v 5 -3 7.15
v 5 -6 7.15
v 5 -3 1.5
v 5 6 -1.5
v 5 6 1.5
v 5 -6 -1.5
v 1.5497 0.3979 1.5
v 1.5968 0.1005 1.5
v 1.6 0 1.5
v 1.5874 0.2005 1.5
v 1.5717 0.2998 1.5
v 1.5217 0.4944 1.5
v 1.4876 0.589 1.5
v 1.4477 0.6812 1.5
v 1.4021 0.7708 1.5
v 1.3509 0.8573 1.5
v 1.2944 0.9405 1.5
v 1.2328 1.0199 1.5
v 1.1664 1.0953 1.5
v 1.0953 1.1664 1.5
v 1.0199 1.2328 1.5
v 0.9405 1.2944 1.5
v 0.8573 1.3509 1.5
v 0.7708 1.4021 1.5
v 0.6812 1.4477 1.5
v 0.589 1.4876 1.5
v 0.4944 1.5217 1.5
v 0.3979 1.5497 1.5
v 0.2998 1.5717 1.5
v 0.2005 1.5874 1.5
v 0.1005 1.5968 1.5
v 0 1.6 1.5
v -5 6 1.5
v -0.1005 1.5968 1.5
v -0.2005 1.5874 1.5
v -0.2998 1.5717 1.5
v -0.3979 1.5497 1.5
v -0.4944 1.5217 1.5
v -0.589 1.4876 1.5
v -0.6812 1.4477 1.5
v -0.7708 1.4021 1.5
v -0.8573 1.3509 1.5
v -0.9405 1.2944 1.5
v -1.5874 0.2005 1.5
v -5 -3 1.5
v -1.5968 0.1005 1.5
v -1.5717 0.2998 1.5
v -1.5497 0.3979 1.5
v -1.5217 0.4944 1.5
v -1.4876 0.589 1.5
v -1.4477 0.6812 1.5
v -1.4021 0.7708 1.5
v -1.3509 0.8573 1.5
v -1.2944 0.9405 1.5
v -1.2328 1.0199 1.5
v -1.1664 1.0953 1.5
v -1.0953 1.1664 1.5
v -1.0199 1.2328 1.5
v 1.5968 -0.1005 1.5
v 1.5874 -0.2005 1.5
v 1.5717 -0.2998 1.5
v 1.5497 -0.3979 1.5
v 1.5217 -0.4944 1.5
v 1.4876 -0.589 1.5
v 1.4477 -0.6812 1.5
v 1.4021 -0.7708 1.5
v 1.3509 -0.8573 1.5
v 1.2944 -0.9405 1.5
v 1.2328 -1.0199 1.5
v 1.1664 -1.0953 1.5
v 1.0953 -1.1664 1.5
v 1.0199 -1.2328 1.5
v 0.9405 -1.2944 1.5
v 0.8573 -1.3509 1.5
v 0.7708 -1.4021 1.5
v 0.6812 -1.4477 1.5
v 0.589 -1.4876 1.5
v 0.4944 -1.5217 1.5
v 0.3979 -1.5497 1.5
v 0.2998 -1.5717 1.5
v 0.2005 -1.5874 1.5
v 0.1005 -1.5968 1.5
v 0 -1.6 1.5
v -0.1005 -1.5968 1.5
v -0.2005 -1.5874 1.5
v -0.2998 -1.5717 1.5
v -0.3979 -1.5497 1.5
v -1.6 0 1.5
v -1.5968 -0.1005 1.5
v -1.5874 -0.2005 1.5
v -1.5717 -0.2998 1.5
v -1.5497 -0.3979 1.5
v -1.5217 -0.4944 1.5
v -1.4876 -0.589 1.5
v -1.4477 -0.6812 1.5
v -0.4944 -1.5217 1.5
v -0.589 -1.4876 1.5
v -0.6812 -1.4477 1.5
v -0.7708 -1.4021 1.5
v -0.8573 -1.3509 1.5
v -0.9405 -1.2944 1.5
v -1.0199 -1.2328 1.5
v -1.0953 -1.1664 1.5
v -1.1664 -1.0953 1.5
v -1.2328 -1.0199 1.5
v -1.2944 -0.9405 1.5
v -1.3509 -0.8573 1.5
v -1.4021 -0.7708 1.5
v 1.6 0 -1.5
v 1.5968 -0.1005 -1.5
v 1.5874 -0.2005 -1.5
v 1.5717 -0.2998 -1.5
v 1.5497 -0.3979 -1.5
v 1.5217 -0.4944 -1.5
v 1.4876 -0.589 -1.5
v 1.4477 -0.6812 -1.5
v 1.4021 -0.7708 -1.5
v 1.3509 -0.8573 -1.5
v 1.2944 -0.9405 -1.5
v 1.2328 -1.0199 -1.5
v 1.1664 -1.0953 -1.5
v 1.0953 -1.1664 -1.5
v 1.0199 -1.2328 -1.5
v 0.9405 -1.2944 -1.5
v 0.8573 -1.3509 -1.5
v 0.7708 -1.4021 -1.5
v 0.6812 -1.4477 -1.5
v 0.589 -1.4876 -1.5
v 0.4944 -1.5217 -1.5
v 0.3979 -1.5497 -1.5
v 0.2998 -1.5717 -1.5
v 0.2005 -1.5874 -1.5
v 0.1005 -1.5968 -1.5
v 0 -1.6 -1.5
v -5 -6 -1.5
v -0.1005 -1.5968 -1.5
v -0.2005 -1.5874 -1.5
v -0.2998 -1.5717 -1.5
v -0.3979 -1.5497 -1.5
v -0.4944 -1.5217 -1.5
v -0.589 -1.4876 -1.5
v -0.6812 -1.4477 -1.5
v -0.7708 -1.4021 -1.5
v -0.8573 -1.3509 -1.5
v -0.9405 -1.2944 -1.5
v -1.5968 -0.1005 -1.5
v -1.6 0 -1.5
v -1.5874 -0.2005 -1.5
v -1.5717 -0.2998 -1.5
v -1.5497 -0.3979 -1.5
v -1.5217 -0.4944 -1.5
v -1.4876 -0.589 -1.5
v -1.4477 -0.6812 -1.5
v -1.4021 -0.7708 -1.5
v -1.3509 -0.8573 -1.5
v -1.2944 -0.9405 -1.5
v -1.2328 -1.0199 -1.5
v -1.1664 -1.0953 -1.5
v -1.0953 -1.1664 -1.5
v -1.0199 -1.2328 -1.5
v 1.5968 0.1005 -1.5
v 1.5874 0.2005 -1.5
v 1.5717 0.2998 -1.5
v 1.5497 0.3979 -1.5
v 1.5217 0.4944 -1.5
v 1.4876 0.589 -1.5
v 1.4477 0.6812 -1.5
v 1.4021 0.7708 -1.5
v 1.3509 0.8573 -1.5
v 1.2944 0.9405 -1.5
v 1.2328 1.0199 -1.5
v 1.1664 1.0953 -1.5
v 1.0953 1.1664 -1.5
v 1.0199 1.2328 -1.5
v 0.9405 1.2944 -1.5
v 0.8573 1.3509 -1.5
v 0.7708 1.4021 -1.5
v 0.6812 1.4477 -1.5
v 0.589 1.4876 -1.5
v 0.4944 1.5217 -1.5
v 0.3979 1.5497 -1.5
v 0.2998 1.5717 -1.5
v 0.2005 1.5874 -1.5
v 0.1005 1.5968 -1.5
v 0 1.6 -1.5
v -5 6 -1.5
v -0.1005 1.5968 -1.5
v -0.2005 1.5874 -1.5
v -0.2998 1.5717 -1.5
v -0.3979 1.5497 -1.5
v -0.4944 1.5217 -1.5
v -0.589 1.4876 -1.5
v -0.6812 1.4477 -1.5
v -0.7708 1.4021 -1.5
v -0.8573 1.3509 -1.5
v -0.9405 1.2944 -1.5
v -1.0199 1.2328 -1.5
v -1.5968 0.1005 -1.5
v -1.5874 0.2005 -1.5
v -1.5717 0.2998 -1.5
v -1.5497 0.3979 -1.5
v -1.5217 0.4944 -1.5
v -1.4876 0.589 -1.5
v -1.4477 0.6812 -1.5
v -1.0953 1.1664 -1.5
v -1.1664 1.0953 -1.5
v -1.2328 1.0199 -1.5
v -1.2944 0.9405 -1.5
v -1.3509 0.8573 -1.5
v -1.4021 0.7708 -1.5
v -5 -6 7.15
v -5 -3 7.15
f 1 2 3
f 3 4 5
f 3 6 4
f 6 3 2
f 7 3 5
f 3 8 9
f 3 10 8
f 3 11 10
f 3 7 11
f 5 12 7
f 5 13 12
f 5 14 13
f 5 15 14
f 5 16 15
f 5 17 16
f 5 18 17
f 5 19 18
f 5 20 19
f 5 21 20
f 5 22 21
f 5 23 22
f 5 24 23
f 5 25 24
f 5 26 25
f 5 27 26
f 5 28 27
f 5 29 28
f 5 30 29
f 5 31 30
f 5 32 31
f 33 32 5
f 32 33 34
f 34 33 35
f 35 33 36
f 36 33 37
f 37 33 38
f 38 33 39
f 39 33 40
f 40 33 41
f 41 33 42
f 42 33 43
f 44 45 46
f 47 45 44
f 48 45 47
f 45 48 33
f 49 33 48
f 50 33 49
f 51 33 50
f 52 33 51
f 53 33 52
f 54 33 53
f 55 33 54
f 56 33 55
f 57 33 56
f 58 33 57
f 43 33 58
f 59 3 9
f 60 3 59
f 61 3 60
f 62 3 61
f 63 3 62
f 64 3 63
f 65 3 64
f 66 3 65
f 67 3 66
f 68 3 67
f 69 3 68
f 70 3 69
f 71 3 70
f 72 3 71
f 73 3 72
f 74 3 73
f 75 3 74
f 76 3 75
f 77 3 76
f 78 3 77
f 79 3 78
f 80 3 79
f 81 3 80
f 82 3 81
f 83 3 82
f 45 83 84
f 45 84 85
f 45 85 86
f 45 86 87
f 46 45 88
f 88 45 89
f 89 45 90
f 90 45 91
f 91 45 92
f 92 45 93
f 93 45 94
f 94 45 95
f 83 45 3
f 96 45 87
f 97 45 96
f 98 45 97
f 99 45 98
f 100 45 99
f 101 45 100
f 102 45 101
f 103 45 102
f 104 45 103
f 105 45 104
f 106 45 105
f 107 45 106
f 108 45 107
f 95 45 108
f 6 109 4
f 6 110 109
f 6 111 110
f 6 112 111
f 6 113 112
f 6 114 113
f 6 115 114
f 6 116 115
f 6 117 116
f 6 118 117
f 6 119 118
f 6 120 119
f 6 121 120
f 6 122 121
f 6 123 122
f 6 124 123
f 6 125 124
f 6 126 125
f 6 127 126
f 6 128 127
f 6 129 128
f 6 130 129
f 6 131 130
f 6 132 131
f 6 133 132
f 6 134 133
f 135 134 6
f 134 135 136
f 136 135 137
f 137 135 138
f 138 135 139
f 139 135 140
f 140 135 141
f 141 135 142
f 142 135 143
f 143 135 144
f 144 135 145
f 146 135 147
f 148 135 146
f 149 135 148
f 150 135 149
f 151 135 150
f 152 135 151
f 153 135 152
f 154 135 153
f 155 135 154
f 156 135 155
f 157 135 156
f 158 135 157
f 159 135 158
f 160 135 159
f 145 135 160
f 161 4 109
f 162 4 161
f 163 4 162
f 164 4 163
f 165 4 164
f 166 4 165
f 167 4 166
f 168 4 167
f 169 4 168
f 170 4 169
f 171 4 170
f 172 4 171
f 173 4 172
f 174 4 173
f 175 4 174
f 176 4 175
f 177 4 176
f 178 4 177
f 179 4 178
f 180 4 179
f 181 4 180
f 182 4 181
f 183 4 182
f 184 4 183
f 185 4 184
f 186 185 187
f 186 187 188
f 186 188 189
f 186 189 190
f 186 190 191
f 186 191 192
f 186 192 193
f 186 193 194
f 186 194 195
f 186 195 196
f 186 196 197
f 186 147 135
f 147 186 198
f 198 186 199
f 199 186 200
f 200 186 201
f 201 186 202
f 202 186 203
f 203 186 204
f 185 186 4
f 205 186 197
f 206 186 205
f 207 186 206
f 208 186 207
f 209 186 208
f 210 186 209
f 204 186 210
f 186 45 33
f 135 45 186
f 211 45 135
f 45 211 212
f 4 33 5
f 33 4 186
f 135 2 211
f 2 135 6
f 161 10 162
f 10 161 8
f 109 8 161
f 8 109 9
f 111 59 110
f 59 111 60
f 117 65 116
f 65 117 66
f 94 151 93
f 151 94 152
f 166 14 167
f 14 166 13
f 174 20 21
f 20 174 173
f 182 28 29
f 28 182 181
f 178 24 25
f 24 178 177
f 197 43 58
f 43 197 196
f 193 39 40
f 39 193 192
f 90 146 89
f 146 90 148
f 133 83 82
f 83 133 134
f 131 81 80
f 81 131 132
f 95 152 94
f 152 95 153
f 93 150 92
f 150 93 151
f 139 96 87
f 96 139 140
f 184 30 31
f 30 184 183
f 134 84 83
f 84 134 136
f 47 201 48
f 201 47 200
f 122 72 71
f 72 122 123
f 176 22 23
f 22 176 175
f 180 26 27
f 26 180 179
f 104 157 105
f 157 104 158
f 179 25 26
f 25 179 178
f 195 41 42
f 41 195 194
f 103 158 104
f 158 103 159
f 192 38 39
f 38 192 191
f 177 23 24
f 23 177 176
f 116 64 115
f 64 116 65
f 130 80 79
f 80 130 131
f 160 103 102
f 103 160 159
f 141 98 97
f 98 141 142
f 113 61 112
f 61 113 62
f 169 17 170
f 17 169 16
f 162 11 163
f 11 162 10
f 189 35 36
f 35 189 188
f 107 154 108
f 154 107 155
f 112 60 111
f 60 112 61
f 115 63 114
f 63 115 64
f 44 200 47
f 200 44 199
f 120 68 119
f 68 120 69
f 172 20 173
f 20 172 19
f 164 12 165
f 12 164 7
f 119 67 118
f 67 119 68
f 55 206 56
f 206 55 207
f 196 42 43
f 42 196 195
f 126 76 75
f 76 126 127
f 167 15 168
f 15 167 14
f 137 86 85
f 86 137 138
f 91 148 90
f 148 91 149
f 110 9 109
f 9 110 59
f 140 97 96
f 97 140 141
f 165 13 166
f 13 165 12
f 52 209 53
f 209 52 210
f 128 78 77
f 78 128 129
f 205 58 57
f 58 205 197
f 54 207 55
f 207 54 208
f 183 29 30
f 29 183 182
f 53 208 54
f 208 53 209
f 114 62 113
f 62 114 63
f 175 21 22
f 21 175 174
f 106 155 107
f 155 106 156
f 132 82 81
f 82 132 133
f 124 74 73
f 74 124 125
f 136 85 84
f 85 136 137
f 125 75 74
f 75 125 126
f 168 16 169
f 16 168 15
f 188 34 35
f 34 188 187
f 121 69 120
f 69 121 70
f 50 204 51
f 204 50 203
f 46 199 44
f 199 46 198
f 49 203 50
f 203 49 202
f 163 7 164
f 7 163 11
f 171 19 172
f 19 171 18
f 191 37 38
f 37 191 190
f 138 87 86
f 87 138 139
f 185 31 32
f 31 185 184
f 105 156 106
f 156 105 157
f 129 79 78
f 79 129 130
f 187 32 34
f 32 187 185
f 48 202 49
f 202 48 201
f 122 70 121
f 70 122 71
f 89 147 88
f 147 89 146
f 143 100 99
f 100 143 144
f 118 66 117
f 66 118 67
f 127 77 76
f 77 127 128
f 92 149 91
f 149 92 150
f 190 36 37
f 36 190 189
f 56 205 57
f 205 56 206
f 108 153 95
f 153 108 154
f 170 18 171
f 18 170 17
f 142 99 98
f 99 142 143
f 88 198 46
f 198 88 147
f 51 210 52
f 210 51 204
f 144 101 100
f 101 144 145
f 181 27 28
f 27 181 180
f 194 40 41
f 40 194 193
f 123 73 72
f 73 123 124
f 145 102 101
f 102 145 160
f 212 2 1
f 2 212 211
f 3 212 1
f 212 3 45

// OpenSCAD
translate([-0,-4.5,4]) cube([10,3,6.3], center = true);
//translate([0,-10,0]) cube([10,12,4], center = true);
difference(){
        cube([10,12,3], center = true);
        translate([0,0,-10]) cylinder(h = 20, r = 1.6, $fn=100);

    }
